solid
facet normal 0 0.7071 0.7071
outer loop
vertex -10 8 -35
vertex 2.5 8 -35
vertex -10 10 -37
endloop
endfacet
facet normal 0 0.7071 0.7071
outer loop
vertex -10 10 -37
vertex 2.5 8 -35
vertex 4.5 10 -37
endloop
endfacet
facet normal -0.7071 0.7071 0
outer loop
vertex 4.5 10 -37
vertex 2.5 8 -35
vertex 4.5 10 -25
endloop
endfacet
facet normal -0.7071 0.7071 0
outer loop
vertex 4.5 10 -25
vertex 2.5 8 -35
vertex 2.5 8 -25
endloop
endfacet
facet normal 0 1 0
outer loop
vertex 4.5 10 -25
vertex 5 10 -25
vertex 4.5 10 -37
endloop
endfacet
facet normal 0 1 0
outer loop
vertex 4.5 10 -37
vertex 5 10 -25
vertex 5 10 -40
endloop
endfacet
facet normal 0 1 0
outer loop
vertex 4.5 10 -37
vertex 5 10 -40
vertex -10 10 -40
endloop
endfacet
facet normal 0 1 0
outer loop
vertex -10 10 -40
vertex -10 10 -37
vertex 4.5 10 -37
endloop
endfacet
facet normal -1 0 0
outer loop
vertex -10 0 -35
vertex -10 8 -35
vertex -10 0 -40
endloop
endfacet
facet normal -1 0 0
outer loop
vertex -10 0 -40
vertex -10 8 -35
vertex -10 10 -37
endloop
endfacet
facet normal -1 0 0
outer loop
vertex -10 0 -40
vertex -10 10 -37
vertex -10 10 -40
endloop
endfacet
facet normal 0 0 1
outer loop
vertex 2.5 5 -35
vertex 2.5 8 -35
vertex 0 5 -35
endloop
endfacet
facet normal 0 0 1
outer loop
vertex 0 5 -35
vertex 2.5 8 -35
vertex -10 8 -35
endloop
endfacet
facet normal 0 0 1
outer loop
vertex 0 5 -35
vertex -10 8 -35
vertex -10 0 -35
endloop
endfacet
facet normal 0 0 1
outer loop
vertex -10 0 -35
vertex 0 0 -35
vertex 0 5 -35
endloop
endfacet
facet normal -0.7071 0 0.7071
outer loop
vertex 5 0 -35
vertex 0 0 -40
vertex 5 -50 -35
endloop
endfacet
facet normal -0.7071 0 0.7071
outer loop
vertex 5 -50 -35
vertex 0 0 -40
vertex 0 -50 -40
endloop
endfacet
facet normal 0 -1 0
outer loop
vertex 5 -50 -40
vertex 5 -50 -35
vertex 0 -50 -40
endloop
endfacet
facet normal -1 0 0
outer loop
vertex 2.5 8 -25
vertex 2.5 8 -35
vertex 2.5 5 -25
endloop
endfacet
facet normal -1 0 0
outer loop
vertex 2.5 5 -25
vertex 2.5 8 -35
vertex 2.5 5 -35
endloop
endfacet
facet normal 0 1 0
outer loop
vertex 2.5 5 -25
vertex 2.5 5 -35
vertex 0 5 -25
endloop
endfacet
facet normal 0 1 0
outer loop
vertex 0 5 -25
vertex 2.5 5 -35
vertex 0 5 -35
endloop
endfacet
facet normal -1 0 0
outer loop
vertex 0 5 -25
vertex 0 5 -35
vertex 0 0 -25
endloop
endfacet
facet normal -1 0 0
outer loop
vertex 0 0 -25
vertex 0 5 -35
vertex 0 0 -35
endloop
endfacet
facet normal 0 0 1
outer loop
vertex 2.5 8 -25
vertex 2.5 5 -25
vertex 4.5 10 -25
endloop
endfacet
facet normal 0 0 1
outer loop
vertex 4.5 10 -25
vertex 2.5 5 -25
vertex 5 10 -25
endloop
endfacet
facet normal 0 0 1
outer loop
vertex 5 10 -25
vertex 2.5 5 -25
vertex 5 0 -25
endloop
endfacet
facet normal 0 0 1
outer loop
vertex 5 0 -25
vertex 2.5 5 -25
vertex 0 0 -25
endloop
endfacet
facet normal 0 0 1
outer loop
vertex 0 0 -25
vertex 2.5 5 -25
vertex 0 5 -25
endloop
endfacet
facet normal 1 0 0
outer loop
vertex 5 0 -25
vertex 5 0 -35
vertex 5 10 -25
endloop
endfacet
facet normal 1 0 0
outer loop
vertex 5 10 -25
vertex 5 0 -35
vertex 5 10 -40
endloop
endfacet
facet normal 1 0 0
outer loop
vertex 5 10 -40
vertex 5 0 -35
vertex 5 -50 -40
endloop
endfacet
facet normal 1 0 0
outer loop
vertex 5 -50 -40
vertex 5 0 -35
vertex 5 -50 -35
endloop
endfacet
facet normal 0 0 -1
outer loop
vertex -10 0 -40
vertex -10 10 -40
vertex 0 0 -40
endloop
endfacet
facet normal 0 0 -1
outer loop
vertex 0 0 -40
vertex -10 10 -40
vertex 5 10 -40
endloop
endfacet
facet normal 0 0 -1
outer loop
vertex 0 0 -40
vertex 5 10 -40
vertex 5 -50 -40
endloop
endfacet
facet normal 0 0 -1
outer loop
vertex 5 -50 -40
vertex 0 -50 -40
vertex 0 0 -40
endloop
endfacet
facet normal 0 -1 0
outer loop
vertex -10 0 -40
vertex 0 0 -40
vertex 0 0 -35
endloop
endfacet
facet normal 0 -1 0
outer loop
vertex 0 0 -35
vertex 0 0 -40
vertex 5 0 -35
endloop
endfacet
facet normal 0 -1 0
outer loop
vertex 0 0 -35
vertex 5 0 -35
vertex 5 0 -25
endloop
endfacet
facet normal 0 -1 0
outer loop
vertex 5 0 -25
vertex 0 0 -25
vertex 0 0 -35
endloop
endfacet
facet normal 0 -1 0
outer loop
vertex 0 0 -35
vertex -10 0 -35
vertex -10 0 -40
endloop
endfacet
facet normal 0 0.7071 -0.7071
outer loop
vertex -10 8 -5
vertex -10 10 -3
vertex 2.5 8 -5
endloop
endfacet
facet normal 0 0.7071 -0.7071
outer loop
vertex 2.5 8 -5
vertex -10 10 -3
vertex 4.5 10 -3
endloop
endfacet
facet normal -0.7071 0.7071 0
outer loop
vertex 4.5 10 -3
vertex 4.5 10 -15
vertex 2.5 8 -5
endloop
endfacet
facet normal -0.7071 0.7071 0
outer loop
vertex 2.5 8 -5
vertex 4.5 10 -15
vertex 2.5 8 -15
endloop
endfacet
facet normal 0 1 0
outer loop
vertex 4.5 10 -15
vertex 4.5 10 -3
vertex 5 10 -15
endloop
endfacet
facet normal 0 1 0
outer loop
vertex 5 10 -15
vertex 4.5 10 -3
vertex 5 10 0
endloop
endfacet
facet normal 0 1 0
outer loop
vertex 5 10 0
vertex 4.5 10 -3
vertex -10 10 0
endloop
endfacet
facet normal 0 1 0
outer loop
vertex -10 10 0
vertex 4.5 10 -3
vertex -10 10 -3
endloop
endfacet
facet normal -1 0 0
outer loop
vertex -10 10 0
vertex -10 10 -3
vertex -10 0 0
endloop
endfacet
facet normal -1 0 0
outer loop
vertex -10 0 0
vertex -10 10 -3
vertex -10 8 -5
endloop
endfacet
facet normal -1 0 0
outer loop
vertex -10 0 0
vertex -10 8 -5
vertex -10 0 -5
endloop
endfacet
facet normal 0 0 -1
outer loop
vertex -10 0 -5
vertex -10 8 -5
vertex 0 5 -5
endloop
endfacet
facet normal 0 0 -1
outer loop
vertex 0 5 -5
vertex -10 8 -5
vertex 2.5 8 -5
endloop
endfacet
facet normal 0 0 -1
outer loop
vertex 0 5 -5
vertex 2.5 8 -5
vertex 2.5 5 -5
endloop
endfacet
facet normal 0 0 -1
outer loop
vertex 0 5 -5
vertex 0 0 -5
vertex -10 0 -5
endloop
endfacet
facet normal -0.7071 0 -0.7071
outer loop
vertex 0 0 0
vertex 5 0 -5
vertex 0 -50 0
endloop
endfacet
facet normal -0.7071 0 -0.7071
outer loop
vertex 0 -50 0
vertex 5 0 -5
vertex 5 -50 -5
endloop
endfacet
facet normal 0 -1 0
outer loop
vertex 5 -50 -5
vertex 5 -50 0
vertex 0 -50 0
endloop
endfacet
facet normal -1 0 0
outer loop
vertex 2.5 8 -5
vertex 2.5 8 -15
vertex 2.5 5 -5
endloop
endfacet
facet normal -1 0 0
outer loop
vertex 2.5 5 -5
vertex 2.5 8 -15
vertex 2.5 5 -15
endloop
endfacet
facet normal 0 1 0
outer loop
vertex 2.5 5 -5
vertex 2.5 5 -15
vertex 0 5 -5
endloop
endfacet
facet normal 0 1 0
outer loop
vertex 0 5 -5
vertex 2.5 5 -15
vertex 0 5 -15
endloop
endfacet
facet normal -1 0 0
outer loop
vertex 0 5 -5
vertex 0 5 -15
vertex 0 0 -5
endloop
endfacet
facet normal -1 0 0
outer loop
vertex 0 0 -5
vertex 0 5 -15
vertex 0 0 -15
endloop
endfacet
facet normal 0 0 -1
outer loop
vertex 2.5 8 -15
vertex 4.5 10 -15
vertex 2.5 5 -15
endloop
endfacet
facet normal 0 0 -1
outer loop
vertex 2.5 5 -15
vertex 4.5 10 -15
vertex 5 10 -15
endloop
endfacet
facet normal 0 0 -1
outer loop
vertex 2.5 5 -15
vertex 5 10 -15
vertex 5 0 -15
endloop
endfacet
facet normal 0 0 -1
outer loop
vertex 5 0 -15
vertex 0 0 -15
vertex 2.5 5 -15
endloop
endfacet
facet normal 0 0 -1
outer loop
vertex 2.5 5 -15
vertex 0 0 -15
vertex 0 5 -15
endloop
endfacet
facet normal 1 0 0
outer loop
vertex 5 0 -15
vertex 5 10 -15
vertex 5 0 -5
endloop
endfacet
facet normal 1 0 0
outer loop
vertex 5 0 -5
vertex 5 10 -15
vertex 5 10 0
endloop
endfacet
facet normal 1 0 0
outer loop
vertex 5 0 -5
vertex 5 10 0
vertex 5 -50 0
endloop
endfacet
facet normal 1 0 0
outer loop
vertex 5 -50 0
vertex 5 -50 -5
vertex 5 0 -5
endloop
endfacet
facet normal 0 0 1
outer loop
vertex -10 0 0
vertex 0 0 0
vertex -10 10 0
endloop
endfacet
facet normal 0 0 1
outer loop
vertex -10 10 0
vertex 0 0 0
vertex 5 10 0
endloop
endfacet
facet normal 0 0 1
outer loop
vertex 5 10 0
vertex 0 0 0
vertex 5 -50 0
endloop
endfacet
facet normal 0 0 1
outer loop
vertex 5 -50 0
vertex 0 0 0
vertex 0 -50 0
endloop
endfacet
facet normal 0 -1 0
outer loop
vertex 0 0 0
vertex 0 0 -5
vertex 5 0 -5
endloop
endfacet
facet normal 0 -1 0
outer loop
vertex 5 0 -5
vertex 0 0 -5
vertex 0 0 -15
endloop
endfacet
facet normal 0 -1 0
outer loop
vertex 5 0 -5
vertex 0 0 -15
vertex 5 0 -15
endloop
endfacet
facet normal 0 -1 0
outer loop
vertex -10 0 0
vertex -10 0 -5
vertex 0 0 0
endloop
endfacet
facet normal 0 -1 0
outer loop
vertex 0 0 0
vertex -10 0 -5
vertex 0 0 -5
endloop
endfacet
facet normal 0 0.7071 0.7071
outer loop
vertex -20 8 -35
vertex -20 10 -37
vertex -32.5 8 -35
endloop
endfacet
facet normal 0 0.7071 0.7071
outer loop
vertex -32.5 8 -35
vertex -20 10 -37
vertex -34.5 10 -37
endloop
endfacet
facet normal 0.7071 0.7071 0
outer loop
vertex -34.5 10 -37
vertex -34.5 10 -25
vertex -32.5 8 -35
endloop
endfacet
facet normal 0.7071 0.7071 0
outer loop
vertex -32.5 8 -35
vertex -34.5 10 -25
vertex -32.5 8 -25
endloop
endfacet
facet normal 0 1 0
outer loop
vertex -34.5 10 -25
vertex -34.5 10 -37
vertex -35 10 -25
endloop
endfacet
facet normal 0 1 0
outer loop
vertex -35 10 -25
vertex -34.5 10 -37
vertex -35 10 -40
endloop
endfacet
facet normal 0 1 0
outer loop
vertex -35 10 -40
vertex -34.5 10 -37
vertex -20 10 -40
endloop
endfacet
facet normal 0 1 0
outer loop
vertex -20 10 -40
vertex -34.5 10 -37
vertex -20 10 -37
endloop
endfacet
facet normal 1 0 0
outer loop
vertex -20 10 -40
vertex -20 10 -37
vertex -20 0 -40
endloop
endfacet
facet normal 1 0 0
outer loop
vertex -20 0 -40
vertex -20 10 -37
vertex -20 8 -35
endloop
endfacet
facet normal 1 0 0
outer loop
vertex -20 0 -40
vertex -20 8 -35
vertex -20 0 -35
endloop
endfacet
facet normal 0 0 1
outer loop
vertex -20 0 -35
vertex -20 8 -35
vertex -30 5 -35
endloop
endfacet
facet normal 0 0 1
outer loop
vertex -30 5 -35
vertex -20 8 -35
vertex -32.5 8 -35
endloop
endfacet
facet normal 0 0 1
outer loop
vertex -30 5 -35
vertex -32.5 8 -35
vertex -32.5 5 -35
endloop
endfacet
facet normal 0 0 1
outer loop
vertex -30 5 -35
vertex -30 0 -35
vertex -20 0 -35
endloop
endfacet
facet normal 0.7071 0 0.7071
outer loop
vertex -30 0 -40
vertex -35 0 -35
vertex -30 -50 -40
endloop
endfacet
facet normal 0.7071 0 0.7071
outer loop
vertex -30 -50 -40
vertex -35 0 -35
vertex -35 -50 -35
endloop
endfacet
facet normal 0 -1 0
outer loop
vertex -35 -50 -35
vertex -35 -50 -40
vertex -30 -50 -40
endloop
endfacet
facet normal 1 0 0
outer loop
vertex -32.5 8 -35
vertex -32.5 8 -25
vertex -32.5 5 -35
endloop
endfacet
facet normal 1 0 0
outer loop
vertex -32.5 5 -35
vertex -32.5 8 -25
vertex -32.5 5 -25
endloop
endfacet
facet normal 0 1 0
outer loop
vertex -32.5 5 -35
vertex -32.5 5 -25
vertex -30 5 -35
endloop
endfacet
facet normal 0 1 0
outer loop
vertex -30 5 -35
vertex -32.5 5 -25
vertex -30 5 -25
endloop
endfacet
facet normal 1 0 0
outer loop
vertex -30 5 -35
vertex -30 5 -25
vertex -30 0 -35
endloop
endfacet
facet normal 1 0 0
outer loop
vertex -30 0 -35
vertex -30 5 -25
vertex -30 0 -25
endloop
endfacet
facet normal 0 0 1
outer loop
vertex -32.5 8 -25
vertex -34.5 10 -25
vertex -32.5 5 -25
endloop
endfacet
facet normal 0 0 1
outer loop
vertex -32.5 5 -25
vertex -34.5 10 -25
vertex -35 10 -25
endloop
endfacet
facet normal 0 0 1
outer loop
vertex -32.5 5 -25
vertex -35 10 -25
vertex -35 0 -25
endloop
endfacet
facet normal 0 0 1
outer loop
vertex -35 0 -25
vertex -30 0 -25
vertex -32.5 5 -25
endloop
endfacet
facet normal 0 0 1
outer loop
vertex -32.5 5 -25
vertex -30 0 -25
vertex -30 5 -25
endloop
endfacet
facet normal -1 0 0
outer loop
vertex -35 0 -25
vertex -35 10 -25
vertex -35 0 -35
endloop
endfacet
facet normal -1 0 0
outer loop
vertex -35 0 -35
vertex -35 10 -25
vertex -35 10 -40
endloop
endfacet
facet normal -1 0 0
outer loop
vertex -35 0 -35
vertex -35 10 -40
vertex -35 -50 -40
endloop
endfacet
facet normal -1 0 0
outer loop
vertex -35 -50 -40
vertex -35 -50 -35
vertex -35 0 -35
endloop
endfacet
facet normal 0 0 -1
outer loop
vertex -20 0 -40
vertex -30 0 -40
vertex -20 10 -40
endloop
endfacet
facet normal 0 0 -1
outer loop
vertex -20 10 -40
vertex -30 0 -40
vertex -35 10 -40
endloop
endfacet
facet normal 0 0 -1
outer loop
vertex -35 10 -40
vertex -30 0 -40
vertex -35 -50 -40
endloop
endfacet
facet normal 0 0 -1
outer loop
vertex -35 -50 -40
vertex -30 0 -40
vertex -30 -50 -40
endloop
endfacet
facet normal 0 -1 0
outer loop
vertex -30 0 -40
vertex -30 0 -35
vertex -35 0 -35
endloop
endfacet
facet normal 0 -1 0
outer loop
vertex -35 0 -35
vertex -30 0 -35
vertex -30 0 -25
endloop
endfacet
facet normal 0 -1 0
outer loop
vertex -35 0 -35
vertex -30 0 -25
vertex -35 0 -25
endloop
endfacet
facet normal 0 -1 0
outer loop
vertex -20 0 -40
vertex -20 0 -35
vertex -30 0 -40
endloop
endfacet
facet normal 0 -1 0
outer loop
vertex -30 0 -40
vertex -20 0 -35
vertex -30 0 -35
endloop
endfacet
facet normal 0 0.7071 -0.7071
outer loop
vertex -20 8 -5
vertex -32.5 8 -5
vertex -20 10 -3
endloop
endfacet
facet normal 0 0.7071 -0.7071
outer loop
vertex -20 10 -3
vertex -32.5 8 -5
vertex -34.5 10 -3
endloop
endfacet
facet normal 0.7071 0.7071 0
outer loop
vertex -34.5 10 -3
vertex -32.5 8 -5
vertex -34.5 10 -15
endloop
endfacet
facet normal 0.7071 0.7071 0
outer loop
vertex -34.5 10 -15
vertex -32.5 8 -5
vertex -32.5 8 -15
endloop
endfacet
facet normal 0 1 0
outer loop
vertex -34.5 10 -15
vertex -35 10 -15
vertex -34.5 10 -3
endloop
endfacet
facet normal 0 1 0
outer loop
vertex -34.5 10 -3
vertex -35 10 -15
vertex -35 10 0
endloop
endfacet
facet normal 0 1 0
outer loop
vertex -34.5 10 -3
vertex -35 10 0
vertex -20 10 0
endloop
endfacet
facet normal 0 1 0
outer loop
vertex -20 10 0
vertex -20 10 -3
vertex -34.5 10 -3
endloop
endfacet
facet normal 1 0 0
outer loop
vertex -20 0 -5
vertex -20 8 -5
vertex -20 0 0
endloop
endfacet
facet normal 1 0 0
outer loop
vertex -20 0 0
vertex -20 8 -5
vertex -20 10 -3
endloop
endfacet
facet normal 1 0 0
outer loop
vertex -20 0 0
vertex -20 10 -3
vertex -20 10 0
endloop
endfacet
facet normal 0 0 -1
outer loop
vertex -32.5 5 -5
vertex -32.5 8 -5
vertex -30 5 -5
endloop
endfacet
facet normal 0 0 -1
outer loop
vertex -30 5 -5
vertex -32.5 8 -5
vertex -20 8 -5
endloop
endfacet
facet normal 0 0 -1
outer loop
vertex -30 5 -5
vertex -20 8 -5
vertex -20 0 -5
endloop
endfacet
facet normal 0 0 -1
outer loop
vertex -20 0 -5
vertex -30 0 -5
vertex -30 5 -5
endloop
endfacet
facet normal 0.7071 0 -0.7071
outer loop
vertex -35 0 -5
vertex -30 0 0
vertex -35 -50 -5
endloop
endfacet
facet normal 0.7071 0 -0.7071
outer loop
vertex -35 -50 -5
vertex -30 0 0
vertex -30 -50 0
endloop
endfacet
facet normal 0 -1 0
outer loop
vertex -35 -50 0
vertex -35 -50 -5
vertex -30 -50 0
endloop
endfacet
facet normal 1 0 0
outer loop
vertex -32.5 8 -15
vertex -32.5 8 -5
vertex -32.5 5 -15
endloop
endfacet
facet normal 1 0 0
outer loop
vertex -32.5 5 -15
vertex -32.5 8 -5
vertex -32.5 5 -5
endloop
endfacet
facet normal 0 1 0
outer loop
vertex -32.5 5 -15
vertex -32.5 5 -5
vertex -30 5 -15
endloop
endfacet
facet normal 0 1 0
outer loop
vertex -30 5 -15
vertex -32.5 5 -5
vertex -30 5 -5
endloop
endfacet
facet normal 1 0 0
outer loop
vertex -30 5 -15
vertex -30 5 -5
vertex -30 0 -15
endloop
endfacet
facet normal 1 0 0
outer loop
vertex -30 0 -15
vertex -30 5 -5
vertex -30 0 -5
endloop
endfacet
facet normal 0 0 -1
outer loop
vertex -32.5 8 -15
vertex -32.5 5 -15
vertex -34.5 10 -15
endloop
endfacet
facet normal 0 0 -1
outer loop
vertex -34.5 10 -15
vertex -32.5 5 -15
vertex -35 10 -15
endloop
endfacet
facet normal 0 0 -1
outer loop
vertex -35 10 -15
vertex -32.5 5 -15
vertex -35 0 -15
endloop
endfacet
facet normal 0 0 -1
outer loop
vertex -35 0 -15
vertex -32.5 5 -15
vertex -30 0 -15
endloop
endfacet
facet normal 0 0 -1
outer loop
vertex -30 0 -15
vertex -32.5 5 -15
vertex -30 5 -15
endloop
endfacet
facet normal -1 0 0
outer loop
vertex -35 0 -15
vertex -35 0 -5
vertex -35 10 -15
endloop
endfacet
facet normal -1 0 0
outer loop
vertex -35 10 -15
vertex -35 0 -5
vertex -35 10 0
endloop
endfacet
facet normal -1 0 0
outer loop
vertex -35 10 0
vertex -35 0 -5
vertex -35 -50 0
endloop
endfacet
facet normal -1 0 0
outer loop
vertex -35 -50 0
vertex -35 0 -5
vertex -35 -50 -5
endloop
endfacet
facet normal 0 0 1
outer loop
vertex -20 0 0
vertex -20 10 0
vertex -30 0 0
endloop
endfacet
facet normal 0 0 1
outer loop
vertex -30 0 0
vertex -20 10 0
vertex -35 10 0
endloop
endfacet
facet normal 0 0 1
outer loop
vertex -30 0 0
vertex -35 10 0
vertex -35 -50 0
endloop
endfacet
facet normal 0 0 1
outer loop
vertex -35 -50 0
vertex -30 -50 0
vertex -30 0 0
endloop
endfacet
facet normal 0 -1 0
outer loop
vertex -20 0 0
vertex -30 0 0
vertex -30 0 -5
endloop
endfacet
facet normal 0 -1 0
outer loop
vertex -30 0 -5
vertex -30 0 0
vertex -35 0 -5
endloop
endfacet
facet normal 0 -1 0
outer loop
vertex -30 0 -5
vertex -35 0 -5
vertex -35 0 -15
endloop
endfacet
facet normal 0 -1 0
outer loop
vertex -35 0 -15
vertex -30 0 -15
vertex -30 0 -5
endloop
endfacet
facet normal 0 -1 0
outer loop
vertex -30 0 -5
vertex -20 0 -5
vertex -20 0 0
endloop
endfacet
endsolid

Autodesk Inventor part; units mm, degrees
ref_plane "YZ Plane" through (0, 0, 0) normal (1, 0, 0) x (0, 1, 0)
ref_plane "XZ Plane" through (0, 0, 0) normal (0, 1, 0) x (-1, 0, 0)
ref_plane "XY Plane" through (0, 0, 0) normal (0, 0, 1) x (1, 0, 0)
sketch "Boceto1" plane through (0, 0, 0) normal (0, 1, 0) x (-1, 0, 0)
  line L0 (0, 0) -> (10, 0)
  line L1 (10, 0) -> (10, -5)
  line L2 (10, -5) -> (0, -5)
  line L3 (0, -5) -> (0, -15)
  line L4 (0, -15) -> (-5, -15)
  line L5 (-5, -15) -> (-5, 0)
  line L6 (-5, 0) -> (10, 0)
  line L7 (0, -5) -> (-2.5, -5)
  line L8 (-2.5, -5) -> (-2.5, -15)
  dimension "d0" = 10
  dimension "d1" = 5
  dimension "d2" = 10
  dimension "d3" = 5
  dimension "d4" = 2.5
extrude "Extrusión1" add sketch "Boceto1" along normal blind 10
sketch "Boceto2" plane through (0, 10, 0) normal (0, 1, 0) x (1, 0, 0)
  line L0 (0, 15) -> (0, 5) projected
  line L1 (0, 5) -> (2.5, 5)
  line L2 (2.5, 5) -> (2.5, 15)
  line L3 (5, 15) -> (0, 15) projected
  point P0 (0, 0)
  dimension "d7" = 2.5
extrude "Extrusión2" cut sketch "Boceto2" against normal blind 5
sketch "Boceto3" plane through (0, 0, 0) normal (0, -1, 0) x (1, 0, 0)
  line L0 (0, -5) -> (-10, -5) projected
  line L1 (0, -5) -> (5, -5)
  line L2 (5, 0) -> (5, -15) projected
  line L3 (5, 0) -> (5, -5)
  line L4 (5, 0) -> (0, 0)
  line L5 (-10, 0) -> (5, 0) projected
  line L6 (0, -5) -> (0, 0)
  line L7 (5, -5) -> (0, 0)
extrude "Extrusión3" add sketch "Boceto3" along normal blind 50 contours L7 L4 L2
chamfer "Chaflán1" distance 2 angle 45 2 edges at (2.5, 10, -10) (-3.75, 10, -5)
ref_plane "Plano de trabajo1" through (-15, 0, -5) normal (-1, 0, 0) x (0, 0, 1)
ref_plane "Plano de trabajo2" through (5, 0, -20) normal (0, 0, -1) x (-1, 0, 0)
mirror "Simetría1" about plane through (5, 0, -20) normal (0, 0, -1)
mirror "Simetría2" about plane through (-15, 0, -5) normal (-1, 0, 0)
properties part number "soporte_stm"
